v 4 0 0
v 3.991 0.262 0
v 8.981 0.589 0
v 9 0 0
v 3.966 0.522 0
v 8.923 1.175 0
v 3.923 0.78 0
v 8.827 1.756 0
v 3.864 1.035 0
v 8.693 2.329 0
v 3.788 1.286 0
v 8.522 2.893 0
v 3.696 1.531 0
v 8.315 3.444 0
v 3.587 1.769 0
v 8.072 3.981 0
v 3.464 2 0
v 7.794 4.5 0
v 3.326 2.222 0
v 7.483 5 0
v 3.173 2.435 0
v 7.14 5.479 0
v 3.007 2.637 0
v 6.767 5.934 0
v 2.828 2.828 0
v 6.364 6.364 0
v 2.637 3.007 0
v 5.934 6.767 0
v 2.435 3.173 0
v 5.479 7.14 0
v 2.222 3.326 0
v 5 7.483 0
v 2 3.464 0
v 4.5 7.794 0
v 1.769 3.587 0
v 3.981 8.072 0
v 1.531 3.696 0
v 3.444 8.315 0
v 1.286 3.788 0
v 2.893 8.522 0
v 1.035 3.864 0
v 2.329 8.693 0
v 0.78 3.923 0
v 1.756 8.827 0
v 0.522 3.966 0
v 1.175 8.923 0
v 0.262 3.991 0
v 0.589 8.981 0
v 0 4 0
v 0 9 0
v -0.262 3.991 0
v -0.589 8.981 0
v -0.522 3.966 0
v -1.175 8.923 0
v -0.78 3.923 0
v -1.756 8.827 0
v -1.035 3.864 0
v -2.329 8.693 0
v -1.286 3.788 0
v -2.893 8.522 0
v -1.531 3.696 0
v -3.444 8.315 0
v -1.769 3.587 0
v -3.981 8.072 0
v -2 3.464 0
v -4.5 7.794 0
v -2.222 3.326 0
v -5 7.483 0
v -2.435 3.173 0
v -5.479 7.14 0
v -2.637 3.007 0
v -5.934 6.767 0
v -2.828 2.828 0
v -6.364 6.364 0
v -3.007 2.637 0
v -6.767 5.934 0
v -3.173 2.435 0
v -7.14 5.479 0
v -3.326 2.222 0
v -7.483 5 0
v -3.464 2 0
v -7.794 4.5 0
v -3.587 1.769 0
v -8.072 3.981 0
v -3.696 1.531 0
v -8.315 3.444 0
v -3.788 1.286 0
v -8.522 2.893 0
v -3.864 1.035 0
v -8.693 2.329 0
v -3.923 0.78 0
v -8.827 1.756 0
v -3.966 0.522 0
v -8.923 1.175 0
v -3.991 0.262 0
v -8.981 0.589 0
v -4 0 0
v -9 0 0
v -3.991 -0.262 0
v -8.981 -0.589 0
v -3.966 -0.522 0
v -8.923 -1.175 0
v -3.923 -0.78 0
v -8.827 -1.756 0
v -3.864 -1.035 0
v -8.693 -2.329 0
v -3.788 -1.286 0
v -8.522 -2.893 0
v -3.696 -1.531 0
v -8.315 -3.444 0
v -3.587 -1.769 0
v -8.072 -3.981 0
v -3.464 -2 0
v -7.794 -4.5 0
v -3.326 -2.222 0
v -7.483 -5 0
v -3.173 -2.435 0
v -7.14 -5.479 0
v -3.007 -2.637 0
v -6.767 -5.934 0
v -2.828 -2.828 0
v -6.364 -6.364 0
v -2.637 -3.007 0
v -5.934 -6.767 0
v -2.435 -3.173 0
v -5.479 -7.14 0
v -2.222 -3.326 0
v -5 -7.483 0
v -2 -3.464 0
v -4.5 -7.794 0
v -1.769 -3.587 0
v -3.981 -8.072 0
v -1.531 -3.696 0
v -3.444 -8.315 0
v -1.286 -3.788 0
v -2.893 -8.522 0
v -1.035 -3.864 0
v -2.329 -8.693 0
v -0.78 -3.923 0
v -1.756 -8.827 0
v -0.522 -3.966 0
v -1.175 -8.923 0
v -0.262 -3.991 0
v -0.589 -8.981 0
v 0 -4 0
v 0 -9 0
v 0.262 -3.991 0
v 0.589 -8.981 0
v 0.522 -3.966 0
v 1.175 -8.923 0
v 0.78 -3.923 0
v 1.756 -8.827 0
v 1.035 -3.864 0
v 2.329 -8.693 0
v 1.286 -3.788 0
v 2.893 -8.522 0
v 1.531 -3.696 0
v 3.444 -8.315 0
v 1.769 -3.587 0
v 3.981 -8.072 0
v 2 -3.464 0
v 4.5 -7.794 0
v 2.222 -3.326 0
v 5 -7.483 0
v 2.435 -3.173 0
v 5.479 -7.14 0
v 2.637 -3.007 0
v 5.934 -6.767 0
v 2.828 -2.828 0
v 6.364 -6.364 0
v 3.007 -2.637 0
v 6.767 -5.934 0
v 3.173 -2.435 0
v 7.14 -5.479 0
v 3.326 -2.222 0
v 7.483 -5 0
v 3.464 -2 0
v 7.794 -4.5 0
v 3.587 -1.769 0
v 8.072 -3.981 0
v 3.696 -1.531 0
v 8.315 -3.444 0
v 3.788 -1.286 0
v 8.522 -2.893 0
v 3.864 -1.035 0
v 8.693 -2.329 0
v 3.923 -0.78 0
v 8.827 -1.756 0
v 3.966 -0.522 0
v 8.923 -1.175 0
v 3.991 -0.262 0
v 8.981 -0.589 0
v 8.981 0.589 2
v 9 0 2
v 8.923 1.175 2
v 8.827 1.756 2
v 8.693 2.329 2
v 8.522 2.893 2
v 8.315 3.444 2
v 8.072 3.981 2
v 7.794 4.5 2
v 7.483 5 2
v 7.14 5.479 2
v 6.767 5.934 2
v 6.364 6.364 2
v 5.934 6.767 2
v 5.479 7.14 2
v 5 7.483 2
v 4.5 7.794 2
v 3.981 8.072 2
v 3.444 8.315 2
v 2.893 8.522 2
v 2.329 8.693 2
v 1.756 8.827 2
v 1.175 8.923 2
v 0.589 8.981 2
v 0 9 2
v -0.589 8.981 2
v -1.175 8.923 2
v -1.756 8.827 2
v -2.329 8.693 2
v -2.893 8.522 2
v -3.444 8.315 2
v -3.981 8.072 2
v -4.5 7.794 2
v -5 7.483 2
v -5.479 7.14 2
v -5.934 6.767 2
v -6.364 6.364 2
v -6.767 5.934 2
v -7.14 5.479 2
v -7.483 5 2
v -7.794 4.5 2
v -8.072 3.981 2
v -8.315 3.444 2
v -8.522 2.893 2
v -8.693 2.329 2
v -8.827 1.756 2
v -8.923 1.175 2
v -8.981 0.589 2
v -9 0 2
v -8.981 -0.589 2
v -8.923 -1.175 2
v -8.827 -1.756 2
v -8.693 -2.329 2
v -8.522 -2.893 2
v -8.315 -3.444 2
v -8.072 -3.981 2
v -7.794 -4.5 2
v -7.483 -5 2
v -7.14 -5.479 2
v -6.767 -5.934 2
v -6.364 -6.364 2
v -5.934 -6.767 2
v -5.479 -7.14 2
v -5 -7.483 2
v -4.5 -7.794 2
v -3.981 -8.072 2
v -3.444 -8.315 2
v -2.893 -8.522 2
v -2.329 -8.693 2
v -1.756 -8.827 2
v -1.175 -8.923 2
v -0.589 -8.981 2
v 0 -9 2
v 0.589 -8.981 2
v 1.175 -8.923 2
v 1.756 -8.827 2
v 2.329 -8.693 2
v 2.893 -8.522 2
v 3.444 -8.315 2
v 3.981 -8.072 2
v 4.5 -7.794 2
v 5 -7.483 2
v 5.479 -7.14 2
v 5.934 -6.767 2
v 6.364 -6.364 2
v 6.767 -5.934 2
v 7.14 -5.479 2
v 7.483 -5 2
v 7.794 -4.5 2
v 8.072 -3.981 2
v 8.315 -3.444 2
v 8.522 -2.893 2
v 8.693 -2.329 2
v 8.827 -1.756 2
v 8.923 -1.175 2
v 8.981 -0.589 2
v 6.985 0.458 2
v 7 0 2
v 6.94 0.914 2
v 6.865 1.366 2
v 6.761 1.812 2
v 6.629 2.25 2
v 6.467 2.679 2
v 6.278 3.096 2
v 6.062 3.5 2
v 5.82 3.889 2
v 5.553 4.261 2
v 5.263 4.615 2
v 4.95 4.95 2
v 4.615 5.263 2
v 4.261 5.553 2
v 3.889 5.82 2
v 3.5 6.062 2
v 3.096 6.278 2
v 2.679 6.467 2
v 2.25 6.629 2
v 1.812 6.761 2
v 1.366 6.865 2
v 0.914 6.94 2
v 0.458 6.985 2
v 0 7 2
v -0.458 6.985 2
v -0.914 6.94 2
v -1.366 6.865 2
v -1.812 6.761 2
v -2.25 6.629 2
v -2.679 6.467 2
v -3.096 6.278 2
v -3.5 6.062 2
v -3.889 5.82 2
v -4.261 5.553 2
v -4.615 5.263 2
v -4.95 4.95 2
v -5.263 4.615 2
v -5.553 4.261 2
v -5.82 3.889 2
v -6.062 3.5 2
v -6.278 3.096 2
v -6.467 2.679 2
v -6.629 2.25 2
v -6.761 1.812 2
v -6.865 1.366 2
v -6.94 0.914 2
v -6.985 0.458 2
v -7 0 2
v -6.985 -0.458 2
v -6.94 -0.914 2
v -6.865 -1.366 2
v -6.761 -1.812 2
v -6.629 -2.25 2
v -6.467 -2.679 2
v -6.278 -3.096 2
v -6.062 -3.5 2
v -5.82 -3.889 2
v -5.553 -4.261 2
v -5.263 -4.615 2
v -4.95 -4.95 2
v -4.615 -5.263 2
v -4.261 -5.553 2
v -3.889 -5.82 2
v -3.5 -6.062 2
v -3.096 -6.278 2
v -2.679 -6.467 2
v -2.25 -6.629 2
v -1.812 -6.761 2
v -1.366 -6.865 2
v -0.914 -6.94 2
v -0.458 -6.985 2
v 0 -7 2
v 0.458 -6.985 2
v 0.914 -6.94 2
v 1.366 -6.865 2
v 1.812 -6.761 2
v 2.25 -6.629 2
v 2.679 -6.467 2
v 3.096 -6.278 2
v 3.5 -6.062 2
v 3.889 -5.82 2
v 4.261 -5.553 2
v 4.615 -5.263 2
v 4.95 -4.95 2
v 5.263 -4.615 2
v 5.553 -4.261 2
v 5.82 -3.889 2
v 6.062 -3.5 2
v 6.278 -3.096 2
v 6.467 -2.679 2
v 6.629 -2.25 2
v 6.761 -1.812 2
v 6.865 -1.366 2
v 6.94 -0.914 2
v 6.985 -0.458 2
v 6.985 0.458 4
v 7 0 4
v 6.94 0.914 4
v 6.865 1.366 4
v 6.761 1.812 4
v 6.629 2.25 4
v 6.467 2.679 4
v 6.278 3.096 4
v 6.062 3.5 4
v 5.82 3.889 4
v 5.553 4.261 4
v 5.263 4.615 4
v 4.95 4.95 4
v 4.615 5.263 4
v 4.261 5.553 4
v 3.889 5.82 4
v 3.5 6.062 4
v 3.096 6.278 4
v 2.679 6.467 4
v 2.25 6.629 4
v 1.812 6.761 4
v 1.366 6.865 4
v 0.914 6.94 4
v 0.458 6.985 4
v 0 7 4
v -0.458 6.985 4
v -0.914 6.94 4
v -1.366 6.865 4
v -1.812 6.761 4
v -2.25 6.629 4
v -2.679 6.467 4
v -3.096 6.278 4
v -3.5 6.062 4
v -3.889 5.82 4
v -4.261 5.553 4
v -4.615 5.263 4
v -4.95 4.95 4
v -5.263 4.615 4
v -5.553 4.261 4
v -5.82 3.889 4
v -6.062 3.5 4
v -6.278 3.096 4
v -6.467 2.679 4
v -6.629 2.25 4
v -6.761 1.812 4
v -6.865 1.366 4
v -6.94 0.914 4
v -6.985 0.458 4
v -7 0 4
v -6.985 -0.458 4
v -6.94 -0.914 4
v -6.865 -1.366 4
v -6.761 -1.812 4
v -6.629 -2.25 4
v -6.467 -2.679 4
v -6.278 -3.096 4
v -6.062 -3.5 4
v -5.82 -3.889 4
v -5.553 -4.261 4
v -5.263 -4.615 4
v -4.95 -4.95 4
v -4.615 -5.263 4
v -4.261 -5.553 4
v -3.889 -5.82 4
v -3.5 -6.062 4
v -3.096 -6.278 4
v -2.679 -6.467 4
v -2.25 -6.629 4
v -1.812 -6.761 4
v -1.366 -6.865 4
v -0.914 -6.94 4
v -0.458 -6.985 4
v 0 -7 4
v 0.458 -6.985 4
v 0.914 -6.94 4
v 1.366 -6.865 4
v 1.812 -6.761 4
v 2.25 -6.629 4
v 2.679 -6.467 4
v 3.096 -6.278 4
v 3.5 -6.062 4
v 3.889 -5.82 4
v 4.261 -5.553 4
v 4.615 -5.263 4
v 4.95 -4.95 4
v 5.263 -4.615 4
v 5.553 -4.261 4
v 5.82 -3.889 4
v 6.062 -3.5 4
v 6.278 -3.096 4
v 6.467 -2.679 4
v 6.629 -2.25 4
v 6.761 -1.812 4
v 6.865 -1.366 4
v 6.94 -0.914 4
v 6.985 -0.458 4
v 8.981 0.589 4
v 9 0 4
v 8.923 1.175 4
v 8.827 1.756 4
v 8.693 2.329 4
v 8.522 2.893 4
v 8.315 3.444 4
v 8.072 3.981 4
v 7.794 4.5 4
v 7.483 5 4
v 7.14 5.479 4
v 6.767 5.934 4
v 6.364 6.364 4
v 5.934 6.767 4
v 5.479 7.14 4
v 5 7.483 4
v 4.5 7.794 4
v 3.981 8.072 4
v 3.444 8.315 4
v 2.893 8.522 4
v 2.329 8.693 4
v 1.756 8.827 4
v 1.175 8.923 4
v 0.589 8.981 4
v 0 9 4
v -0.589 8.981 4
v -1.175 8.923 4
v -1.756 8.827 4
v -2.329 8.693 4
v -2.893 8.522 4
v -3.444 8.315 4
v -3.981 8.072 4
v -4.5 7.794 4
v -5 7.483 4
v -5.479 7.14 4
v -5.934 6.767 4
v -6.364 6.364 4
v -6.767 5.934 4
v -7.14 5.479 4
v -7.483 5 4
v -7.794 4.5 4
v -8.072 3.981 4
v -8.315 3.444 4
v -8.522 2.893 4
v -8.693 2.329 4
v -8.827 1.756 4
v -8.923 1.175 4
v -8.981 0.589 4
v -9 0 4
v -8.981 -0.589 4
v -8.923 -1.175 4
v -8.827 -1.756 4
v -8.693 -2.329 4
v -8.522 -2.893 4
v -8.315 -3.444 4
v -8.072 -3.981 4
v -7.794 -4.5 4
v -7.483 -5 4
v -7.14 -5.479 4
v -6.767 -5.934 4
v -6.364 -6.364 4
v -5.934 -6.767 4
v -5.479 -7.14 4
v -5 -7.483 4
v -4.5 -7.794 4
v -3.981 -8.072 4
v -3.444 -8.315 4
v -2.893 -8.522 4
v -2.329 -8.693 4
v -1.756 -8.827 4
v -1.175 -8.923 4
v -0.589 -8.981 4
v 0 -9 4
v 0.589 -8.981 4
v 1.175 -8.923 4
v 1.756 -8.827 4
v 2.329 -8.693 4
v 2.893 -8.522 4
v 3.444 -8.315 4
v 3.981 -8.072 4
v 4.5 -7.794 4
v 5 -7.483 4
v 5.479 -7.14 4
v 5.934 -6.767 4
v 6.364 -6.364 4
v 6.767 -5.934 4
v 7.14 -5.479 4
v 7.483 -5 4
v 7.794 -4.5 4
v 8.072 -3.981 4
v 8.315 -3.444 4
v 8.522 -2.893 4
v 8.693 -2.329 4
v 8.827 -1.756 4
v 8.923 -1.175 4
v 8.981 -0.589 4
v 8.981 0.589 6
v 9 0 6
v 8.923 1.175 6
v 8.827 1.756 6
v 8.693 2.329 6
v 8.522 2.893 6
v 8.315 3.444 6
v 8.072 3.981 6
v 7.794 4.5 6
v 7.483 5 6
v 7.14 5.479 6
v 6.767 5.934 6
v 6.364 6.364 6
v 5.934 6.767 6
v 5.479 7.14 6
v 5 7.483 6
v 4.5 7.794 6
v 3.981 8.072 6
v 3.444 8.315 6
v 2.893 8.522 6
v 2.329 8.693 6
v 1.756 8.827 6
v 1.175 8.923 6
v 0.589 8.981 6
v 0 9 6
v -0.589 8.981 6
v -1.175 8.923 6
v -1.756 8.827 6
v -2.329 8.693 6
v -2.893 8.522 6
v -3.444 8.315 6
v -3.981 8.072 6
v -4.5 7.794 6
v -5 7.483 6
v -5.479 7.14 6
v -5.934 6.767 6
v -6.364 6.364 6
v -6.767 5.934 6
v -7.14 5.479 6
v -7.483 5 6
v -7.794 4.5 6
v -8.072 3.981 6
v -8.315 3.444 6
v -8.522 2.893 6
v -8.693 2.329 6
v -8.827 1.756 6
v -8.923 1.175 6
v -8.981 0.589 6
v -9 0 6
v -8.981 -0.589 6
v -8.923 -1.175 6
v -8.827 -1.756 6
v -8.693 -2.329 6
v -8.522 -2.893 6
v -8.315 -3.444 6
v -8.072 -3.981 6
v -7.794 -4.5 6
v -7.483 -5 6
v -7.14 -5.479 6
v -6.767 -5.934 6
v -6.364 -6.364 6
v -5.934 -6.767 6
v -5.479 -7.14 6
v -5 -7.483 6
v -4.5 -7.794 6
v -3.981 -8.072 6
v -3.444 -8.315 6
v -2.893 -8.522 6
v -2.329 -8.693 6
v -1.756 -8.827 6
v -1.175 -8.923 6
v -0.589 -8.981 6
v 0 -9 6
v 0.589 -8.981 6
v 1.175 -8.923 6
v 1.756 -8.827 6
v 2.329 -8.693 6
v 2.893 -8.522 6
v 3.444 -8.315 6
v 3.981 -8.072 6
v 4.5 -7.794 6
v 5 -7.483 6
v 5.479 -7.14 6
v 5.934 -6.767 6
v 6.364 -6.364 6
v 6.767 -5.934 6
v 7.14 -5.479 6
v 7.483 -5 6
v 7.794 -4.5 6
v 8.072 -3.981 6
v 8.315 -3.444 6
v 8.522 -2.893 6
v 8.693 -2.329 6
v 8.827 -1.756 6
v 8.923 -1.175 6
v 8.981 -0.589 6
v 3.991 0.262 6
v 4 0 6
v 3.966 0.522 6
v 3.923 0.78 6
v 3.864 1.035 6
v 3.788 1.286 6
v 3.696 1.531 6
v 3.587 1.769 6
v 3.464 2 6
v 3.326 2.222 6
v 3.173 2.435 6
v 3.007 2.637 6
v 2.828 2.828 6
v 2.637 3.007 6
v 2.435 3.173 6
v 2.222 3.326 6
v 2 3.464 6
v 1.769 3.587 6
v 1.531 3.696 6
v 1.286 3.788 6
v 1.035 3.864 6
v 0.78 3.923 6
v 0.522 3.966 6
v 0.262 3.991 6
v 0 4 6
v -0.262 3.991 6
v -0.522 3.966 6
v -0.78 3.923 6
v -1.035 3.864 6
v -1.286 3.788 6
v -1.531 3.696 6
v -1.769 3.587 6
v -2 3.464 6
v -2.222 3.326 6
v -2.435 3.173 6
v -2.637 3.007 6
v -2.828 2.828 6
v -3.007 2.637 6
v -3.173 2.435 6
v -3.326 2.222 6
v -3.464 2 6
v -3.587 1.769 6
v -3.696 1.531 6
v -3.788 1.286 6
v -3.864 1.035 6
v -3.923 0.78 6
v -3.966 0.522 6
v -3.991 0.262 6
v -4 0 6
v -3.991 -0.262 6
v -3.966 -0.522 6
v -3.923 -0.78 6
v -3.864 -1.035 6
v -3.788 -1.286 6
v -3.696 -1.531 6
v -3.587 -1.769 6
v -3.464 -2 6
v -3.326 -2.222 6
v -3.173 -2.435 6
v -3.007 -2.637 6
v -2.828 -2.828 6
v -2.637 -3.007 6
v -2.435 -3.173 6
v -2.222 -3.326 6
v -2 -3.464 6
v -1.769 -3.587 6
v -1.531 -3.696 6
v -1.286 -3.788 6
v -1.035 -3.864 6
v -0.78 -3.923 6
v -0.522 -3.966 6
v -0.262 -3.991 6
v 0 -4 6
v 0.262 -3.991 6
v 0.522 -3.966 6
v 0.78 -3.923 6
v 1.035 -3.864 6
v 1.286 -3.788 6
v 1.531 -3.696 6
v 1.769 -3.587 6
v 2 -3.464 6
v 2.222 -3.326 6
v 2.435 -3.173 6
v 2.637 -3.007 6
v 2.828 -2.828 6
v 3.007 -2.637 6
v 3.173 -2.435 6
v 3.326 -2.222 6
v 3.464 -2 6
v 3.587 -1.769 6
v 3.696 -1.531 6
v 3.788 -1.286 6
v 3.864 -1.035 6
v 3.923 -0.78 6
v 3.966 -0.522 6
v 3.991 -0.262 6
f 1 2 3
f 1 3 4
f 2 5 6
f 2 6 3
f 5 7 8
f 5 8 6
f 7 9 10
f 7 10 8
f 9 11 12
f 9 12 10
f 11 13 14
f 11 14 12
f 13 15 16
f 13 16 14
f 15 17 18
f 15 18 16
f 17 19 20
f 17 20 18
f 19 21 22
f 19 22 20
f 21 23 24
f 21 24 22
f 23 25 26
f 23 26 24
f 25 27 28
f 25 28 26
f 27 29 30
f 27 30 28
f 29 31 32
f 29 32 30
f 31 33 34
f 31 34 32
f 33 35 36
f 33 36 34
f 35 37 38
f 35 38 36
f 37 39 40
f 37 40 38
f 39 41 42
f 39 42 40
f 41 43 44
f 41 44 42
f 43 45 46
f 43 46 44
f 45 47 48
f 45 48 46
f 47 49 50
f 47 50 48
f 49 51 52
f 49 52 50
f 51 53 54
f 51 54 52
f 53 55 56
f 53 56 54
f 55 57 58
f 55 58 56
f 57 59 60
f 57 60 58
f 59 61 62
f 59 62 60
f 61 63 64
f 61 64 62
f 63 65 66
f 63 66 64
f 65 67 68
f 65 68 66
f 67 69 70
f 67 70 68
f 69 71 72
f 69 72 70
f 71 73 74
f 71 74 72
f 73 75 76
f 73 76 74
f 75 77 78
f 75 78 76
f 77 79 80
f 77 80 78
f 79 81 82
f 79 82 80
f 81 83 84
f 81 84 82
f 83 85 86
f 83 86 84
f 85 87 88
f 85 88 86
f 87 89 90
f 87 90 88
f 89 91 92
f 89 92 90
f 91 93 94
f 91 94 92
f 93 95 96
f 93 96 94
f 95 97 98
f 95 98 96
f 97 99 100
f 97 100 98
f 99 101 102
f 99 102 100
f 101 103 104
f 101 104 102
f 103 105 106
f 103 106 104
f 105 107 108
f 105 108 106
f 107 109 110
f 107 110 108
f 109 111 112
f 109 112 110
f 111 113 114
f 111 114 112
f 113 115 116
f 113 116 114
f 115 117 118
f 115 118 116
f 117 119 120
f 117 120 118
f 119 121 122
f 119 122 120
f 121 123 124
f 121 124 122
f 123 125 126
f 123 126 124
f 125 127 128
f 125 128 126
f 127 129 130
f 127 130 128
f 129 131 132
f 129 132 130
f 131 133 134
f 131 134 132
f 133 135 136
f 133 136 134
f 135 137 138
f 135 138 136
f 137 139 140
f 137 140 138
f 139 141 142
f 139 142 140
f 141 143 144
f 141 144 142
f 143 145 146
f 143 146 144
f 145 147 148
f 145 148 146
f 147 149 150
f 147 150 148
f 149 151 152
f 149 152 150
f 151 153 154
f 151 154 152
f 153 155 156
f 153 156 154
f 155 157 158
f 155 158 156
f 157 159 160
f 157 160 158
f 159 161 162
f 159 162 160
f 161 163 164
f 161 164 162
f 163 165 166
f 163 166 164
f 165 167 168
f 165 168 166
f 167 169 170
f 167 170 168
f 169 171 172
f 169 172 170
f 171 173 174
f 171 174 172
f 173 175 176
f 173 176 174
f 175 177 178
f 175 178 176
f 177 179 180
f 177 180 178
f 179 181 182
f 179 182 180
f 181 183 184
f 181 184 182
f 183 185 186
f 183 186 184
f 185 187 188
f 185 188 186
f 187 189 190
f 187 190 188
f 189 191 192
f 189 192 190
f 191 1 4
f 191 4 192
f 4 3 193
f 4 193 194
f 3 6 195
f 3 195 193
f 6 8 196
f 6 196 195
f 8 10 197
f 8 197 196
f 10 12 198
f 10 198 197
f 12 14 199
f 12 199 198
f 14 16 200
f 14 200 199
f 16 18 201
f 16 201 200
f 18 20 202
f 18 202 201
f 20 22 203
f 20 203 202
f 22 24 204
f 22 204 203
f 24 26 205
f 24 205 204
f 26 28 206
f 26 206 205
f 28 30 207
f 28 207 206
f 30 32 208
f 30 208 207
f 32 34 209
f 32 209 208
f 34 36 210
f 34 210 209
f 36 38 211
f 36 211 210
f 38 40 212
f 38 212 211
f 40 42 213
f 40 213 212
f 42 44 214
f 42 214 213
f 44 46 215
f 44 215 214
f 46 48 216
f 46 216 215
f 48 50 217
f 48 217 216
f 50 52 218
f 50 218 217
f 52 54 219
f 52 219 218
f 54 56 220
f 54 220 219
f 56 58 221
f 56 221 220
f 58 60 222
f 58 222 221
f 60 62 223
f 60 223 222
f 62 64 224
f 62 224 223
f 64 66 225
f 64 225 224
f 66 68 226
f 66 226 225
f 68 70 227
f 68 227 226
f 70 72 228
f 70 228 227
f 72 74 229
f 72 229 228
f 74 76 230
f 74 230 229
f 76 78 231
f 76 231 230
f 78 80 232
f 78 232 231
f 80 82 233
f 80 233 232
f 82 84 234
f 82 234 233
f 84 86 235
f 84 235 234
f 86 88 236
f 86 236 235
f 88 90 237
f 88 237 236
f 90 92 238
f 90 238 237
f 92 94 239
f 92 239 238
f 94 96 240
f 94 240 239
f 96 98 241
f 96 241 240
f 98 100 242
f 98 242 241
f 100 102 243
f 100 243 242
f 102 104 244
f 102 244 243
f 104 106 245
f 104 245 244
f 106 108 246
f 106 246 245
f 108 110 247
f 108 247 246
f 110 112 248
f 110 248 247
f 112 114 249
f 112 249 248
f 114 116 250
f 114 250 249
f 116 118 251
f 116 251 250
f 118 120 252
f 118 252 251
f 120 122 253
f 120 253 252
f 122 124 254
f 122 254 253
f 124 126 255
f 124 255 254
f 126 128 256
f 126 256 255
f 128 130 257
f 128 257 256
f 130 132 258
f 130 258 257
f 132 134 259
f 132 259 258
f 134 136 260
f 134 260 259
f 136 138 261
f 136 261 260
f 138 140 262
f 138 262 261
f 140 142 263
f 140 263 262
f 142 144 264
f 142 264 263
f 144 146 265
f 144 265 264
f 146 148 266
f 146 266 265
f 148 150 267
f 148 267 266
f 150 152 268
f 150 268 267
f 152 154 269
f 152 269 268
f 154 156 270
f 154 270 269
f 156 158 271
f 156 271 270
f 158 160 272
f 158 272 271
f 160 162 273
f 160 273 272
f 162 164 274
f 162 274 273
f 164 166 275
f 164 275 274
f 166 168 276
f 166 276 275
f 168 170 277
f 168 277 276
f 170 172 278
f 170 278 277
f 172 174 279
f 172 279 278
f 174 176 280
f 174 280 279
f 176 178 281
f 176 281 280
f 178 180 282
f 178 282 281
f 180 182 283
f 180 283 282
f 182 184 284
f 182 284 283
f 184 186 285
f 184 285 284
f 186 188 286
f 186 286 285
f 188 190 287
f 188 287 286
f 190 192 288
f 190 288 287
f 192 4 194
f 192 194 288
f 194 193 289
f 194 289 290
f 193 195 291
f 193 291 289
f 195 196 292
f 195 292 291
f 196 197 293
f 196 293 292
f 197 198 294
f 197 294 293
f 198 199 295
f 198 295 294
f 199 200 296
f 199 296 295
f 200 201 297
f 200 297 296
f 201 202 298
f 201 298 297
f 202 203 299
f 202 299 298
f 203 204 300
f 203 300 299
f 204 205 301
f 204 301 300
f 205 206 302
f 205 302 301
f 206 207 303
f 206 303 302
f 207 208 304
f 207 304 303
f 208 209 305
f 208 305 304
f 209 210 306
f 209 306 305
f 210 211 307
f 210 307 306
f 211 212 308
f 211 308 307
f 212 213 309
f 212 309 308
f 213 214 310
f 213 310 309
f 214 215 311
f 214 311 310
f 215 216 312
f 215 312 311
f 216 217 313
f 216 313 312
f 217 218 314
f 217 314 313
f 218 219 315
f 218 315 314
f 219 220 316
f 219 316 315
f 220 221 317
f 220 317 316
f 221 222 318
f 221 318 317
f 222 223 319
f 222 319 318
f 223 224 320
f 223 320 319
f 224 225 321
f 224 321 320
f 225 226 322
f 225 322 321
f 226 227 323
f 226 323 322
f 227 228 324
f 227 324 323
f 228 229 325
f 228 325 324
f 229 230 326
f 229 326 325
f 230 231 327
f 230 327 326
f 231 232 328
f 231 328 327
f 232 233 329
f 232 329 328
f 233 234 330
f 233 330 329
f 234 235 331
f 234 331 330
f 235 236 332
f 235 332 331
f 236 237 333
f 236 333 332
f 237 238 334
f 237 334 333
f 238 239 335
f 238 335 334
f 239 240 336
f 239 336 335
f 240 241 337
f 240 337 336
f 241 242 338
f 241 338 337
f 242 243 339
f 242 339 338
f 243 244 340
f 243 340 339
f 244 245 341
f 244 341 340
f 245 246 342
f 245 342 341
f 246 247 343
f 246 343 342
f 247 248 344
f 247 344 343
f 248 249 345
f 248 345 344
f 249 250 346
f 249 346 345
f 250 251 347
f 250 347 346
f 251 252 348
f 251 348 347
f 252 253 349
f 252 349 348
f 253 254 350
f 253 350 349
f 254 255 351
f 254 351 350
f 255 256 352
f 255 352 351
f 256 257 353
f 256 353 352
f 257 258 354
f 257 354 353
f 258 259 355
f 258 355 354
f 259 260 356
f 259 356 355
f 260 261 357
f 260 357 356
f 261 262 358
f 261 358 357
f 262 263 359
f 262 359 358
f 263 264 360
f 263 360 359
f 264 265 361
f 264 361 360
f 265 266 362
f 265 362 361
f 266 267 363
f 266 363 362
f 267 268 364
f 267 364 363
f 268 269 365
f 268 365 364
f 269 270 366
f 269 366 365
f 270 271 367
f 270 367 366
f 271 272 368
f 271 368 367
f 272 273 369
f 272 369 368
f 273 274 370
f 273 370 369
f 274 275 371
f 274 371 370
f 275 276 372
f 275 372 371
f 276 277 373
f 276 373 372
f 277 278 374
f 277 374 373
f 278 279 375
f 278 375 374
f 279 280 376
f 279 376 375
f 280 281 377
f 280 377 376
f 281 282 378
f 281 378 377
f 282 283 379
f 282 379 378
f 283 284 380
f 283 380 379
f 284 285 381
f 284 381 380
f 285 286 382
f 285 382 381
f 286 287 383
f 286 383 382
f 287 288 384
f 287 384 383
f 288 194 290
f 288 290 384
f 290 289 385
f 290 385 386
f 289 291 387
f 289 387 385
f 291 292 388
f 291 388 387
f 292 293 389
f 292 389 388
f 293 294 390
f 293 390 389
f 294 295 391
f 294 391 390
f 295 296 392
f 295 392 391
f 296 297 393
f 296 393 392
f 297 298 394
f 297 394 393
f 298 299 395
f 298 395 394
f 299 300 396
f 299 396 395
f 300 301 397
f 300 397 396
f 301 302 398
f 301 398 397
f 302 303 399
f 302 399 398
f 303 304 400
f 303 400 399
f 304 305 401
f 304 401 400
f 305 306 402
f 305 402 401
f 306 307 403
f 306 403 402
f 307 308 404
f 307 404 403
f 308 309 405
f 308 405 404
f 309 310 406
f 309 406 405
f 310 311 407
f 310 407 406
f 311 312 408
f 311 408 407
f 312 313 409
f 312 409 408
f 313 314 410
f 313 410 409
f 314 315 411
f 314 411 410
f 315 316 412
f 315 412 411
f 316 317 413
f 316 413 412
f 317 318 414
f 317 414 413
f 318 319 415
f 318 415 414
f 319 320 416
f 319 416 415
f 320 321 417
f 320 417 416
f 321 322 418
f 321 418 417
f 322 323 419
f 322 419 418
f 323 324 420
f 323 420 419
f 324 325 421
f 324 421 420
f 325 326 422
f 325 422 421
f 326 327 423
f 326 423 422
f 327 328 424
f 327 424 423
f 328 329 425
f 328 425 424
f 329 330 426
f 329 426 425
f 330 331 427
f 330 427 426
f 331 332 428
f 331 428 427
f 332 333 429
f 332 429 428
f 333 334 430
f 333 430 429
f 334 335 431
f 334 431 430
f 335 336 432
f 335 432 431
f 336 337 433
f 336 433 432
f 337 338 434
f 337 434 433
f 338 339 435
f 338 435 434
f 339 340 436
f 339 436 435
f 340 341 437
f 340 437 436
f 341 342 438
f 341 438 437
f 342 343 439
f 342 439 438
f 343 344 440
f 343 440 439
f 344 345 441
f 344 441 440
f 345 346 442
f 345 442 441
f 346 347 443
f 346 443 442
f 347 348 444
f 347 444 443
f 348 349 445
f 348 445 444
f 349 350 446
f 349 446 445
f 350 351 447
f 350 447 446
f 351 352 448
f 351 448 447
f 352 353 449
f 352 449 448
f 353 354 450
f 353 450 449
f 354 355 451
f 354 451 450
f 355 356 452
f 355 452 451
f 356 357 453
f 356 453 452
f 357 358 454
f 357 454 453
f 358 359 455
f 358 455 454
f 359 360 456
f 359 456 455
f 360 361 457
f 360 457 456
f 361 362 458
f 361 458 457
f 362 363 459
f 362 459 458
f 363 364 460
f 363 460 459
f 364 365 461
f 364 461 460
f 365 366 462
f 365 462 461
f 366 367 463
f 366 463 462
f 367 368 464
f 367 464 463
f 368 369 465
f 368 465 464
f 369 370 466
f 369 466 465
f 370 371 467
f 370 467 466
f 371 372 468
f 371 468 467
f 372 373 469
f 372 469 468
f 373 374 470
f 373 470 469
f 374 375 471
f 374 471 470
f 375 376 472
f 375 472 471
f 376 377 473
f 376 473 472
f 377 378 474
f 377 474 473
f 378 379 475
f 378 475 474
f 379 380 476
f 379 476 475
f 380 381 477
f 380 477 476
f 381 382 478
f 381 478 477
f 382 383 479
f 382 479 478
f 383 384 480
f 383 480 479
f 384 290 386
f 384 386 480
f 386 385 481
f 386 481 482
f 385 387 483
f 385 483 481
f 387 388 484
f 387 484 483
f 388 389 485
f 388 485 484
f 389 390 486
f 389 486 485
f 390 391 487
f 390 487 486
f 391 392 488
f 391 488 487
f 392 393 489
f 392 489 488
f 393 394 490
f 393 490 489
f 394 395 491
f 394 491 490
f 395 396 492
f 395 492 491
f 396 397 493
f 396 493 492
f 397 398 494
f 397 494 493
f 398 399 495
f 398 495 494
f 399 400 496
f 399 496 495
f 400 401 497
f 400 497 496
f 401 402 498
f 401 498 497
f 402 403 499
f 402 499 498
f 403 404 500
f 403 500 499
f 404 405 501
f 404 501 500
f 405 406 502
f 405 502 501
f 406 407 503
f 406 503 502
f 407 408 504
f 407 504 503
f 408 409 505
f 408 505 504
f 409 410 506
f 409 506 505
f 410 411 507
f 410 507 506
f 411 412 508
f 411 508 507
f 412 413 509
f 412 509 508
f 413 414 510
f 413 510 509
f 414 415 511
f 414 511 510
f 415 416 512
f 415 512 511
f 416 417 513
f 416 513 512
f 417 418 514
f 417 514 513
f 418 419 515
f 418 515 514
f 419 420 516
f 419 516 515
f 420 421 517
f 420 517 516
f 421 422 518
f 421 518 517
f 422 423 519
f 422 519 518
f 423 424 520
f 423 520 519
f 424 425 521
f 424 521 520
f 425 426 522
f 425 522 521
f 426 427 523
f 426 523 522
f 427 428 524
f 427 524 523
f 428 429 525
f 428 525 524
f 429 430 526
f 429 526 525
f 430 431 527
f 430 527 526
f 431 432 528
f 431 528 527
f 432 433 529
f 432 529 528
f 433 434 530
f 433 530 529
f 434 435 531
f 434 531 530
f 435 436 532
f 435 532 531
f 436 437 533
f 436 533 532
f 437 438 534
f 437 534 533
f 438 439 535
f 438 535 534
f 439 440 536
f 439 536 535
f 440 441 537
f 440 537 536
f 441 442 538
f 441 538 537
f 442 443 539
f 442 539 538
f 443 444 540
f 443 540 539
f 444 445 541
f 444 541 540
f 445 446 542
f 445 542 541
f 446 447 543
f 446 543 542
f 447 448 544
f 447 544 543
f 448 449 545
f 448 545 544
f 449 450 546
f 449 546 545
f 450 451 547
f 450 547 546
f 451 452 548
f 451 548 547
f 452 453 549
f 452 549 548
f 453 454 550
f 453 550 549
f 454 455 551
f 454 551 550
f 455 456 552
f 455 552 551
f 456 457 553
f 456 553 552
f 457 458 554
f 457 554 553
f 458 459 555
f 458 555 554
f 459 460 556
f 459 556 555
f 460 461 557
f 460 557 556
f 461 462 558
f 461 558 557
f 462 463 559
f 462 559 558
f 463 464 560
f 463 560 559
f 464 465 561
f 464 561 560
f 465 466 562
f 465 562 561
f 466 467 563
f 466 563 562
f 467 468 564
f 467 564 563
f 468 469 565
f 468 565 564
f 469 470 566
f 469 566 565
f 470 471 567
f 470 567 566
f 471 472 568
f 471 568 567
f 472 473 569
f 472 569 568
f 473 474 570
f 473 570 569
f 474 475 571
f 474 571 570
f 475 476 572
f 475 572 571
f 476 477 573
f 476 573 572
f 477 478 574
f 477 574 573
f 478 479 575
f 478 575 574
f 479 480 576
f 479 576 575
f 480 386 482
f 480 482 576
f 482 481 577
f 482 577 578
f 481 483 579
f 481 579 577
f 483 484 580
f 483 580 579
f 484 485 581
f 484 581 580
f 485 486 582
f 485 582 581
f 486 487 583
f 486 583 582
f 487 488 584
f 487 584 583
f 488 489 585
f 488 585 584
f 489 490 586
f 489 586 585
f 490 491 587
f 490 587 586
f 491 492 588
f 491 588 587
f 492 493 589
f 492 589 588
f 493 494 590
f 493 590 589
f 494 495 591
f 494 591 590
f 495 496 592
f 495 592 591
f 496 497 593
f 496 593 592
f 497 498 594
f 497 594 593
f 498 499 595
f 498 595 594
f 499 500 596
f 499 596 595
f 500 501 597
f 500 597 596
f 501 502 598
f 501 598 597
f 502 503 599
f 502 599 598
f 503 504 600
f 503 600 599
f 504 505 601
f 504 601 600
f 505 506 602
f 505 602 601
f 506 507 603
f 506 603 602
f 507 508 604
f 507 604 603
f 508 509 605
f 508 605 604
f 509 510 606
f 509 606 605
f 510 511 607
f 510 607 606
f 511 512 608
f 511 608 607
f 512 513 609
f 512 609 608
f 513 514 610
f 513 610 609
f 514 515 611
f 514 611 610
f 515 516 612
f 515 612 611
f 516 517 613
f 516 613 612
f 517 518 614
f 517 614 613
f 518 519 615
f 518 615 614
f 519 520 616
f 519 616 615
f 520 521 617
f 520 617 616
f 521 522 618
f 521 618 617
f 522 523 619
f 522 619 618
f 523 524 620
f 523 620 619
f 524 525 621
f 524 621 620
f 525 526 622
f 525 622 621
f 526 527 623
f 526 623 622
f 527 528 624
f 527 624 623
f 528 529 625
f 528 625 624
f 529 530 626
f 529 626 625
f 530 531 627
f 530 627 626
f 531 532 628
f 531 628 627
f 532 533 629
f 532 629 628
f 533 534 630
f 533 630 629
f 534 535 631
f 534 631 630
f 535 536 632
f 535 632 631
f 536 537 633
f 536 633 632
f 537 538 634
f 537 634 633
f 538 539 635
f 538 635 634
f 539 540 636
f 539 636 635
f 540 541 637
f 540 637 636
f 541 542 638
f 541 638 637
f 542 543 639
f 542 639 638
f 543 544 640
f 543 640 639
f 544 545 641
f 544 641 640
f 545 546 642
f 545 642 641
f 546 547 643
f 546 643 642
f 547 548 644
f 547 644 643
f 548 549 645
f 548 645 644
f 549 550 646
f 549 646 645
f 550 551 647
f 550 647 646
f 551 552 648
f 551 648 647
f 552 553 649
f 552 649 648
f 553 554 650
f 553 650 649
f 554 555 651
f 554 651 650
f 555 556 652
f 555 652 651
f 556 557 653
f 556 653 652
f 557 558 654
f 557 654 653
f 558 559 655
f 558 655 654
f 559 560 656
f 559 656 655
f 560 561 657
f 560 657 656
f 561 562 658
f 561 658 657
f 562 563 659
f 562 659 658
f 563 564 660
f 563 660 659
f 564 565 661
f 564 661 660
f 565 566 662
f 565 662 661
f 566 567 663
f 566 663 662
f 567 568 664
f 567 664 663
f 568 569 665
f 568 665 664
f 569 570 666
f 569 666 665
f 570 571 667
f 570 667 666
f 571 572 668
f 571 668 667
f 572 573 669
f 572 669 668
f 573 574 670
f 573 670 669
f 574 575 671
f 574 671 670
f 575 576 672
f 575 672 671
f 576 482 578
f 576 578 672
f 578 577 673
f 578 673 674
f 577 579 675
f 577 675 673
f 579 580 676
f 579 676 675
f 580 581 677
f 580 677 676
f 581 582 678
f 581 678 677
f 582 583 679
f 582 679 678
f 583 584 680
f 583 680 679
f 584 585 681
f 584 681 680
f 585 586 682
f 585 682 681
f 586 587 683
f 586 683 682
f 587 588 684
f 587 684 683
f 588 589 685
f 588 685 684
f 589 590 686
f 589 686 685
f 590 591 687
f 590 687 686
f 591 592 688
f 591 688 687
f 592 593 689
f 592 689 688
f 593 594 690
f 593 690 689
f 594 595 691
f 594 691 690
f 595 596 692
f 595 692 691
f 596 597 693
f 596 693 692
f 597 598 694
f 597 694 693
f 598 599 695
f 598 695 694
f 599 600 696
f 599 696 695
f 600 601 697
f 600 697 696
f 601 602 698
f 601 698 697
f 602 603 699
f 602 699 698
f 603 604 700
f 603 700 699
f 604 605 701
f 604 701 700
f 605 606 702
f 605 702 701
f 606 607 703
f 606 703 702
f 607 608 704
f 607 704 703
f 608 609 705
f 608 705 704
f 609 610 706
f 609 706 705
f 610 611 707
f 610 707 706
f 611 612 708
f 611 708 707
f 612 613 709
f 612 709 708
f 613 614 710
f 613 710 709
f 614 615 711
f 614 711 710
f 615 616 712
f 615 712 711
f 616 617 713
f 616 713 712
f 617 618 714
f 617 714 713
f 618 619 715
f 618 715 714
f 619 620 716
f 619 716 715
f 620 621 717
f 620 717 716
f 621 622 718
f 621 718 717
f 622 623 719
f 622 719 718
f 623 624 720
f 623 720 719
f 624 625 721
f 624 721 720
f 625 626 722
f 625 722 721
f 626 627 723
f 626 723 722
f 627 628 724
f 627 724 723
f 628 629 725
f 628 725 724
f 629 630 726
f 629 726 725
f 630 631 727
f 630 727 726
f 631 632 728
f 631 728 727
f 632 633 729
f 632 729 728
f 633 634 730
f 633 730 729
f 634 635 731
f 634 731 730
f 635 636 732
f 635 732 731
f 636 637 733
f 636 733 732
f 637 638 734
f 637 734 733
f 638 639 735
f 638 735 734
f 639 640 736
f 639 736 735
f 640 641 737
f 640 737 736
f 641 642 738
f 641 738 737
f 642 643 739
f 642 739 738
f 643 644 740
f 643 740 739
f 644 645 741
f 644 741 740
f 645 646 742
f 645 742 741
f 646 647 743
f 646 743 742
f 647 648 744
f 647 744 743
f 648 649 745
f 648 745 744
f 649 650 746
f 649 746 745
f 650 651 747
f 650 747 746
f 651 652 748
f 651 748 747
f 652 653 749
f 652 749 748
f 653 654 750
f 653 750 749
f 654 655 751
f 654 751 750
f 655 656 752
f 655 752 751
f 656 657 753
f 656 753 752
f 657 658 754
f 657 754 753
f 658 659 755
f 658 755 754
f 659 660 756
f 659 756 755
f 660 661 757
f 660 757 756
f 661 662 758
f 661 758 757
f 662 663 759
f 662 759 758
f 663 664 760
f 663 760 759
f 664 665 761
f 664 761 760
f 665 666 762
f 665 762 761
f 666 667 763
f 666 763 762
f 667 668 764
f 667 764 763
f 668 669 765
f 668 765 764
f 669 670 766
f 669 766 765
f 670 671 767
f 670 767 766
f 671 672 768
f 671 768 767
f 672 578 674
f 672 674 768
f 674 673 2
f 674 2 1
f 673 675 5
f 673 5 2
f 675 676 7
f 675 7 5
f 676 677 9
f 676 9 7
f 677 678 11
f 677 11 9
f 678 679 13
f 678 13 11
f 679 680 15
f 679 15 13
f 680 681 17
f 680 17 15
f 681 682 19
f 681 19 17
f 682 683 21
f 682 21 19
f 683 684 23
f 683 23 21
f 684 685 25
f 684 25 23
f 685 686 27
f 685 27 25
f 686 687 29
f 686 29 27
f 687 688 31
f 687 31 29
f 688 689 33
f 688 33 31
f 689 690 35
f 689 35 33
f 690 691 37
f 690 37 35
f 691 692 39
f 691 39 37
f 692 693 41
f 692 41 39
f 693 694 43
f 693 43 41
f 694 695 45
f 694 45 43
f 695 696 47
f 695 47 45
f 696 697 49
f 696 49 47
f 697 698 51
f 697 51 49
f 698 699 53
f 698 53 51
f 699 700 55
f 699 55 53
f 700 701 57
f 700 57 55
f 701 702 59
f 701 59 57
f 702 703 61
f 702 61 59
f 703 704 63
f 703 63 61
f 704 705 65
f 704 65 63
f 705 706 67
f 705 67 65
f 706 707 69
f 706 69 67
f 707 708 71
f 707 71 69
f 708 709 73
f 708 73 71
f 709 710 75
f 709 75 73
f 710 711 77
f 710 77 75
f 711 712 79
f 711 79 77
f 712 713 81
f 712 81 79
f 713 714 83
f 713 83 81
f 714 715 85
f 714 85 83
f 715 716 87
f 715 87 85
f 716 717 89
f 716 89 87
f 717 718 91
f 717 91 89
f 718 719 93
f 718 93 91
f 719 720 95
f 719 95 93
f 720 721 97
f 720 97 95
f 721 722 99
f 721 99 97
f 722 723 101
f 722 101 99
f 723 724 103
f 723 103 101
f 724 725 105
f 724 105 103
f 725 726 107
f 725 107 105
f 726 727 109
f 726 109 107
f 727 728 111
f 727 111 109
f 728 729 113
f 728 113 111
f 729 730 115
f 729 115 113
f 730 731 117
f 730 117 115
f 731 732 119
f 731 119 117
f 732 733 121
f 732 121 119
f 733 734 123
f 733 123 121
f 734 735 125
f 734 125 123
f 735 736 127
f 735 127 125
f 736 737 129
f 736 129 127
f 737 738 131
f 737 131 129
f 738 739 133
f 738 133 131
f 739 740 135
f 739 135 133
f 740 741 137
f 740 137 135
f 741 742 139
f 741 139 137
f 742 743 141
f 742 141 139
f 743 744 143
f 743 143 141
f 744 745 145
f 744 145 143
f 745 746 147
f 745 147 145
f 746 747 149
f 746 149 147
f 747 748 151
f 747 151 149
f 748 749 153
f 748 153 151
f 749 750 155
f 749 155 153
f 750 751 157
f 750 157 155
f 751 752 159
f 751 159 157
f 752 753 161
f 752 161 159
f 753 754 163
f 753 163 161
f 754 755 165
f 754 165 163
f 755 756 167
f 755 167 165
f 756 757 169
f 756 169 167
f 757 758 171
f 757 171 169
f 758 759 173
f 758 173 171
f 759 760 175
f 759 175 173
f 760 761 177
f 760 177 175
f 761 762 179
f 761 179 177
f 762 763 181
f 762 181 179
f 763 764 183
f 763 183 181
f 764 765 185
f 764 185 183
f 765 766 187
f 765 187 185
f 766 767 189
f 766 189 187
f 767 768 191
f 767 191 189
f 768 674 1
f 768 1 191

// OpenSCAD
// Original MechIntel educational model. CC0-1.0. Units: mm.
// Not a standardized or load-rated component.
$fn=96;
// Section points: [radius, height], mm. Edit to change the profile.
section=[[4, 0], [9, 0], [9, 2], [7, 2], [7, 4], [9, 4], [9, 6], [4, 6]];
rotate_extrude($fn=96) polygon(points=section);
